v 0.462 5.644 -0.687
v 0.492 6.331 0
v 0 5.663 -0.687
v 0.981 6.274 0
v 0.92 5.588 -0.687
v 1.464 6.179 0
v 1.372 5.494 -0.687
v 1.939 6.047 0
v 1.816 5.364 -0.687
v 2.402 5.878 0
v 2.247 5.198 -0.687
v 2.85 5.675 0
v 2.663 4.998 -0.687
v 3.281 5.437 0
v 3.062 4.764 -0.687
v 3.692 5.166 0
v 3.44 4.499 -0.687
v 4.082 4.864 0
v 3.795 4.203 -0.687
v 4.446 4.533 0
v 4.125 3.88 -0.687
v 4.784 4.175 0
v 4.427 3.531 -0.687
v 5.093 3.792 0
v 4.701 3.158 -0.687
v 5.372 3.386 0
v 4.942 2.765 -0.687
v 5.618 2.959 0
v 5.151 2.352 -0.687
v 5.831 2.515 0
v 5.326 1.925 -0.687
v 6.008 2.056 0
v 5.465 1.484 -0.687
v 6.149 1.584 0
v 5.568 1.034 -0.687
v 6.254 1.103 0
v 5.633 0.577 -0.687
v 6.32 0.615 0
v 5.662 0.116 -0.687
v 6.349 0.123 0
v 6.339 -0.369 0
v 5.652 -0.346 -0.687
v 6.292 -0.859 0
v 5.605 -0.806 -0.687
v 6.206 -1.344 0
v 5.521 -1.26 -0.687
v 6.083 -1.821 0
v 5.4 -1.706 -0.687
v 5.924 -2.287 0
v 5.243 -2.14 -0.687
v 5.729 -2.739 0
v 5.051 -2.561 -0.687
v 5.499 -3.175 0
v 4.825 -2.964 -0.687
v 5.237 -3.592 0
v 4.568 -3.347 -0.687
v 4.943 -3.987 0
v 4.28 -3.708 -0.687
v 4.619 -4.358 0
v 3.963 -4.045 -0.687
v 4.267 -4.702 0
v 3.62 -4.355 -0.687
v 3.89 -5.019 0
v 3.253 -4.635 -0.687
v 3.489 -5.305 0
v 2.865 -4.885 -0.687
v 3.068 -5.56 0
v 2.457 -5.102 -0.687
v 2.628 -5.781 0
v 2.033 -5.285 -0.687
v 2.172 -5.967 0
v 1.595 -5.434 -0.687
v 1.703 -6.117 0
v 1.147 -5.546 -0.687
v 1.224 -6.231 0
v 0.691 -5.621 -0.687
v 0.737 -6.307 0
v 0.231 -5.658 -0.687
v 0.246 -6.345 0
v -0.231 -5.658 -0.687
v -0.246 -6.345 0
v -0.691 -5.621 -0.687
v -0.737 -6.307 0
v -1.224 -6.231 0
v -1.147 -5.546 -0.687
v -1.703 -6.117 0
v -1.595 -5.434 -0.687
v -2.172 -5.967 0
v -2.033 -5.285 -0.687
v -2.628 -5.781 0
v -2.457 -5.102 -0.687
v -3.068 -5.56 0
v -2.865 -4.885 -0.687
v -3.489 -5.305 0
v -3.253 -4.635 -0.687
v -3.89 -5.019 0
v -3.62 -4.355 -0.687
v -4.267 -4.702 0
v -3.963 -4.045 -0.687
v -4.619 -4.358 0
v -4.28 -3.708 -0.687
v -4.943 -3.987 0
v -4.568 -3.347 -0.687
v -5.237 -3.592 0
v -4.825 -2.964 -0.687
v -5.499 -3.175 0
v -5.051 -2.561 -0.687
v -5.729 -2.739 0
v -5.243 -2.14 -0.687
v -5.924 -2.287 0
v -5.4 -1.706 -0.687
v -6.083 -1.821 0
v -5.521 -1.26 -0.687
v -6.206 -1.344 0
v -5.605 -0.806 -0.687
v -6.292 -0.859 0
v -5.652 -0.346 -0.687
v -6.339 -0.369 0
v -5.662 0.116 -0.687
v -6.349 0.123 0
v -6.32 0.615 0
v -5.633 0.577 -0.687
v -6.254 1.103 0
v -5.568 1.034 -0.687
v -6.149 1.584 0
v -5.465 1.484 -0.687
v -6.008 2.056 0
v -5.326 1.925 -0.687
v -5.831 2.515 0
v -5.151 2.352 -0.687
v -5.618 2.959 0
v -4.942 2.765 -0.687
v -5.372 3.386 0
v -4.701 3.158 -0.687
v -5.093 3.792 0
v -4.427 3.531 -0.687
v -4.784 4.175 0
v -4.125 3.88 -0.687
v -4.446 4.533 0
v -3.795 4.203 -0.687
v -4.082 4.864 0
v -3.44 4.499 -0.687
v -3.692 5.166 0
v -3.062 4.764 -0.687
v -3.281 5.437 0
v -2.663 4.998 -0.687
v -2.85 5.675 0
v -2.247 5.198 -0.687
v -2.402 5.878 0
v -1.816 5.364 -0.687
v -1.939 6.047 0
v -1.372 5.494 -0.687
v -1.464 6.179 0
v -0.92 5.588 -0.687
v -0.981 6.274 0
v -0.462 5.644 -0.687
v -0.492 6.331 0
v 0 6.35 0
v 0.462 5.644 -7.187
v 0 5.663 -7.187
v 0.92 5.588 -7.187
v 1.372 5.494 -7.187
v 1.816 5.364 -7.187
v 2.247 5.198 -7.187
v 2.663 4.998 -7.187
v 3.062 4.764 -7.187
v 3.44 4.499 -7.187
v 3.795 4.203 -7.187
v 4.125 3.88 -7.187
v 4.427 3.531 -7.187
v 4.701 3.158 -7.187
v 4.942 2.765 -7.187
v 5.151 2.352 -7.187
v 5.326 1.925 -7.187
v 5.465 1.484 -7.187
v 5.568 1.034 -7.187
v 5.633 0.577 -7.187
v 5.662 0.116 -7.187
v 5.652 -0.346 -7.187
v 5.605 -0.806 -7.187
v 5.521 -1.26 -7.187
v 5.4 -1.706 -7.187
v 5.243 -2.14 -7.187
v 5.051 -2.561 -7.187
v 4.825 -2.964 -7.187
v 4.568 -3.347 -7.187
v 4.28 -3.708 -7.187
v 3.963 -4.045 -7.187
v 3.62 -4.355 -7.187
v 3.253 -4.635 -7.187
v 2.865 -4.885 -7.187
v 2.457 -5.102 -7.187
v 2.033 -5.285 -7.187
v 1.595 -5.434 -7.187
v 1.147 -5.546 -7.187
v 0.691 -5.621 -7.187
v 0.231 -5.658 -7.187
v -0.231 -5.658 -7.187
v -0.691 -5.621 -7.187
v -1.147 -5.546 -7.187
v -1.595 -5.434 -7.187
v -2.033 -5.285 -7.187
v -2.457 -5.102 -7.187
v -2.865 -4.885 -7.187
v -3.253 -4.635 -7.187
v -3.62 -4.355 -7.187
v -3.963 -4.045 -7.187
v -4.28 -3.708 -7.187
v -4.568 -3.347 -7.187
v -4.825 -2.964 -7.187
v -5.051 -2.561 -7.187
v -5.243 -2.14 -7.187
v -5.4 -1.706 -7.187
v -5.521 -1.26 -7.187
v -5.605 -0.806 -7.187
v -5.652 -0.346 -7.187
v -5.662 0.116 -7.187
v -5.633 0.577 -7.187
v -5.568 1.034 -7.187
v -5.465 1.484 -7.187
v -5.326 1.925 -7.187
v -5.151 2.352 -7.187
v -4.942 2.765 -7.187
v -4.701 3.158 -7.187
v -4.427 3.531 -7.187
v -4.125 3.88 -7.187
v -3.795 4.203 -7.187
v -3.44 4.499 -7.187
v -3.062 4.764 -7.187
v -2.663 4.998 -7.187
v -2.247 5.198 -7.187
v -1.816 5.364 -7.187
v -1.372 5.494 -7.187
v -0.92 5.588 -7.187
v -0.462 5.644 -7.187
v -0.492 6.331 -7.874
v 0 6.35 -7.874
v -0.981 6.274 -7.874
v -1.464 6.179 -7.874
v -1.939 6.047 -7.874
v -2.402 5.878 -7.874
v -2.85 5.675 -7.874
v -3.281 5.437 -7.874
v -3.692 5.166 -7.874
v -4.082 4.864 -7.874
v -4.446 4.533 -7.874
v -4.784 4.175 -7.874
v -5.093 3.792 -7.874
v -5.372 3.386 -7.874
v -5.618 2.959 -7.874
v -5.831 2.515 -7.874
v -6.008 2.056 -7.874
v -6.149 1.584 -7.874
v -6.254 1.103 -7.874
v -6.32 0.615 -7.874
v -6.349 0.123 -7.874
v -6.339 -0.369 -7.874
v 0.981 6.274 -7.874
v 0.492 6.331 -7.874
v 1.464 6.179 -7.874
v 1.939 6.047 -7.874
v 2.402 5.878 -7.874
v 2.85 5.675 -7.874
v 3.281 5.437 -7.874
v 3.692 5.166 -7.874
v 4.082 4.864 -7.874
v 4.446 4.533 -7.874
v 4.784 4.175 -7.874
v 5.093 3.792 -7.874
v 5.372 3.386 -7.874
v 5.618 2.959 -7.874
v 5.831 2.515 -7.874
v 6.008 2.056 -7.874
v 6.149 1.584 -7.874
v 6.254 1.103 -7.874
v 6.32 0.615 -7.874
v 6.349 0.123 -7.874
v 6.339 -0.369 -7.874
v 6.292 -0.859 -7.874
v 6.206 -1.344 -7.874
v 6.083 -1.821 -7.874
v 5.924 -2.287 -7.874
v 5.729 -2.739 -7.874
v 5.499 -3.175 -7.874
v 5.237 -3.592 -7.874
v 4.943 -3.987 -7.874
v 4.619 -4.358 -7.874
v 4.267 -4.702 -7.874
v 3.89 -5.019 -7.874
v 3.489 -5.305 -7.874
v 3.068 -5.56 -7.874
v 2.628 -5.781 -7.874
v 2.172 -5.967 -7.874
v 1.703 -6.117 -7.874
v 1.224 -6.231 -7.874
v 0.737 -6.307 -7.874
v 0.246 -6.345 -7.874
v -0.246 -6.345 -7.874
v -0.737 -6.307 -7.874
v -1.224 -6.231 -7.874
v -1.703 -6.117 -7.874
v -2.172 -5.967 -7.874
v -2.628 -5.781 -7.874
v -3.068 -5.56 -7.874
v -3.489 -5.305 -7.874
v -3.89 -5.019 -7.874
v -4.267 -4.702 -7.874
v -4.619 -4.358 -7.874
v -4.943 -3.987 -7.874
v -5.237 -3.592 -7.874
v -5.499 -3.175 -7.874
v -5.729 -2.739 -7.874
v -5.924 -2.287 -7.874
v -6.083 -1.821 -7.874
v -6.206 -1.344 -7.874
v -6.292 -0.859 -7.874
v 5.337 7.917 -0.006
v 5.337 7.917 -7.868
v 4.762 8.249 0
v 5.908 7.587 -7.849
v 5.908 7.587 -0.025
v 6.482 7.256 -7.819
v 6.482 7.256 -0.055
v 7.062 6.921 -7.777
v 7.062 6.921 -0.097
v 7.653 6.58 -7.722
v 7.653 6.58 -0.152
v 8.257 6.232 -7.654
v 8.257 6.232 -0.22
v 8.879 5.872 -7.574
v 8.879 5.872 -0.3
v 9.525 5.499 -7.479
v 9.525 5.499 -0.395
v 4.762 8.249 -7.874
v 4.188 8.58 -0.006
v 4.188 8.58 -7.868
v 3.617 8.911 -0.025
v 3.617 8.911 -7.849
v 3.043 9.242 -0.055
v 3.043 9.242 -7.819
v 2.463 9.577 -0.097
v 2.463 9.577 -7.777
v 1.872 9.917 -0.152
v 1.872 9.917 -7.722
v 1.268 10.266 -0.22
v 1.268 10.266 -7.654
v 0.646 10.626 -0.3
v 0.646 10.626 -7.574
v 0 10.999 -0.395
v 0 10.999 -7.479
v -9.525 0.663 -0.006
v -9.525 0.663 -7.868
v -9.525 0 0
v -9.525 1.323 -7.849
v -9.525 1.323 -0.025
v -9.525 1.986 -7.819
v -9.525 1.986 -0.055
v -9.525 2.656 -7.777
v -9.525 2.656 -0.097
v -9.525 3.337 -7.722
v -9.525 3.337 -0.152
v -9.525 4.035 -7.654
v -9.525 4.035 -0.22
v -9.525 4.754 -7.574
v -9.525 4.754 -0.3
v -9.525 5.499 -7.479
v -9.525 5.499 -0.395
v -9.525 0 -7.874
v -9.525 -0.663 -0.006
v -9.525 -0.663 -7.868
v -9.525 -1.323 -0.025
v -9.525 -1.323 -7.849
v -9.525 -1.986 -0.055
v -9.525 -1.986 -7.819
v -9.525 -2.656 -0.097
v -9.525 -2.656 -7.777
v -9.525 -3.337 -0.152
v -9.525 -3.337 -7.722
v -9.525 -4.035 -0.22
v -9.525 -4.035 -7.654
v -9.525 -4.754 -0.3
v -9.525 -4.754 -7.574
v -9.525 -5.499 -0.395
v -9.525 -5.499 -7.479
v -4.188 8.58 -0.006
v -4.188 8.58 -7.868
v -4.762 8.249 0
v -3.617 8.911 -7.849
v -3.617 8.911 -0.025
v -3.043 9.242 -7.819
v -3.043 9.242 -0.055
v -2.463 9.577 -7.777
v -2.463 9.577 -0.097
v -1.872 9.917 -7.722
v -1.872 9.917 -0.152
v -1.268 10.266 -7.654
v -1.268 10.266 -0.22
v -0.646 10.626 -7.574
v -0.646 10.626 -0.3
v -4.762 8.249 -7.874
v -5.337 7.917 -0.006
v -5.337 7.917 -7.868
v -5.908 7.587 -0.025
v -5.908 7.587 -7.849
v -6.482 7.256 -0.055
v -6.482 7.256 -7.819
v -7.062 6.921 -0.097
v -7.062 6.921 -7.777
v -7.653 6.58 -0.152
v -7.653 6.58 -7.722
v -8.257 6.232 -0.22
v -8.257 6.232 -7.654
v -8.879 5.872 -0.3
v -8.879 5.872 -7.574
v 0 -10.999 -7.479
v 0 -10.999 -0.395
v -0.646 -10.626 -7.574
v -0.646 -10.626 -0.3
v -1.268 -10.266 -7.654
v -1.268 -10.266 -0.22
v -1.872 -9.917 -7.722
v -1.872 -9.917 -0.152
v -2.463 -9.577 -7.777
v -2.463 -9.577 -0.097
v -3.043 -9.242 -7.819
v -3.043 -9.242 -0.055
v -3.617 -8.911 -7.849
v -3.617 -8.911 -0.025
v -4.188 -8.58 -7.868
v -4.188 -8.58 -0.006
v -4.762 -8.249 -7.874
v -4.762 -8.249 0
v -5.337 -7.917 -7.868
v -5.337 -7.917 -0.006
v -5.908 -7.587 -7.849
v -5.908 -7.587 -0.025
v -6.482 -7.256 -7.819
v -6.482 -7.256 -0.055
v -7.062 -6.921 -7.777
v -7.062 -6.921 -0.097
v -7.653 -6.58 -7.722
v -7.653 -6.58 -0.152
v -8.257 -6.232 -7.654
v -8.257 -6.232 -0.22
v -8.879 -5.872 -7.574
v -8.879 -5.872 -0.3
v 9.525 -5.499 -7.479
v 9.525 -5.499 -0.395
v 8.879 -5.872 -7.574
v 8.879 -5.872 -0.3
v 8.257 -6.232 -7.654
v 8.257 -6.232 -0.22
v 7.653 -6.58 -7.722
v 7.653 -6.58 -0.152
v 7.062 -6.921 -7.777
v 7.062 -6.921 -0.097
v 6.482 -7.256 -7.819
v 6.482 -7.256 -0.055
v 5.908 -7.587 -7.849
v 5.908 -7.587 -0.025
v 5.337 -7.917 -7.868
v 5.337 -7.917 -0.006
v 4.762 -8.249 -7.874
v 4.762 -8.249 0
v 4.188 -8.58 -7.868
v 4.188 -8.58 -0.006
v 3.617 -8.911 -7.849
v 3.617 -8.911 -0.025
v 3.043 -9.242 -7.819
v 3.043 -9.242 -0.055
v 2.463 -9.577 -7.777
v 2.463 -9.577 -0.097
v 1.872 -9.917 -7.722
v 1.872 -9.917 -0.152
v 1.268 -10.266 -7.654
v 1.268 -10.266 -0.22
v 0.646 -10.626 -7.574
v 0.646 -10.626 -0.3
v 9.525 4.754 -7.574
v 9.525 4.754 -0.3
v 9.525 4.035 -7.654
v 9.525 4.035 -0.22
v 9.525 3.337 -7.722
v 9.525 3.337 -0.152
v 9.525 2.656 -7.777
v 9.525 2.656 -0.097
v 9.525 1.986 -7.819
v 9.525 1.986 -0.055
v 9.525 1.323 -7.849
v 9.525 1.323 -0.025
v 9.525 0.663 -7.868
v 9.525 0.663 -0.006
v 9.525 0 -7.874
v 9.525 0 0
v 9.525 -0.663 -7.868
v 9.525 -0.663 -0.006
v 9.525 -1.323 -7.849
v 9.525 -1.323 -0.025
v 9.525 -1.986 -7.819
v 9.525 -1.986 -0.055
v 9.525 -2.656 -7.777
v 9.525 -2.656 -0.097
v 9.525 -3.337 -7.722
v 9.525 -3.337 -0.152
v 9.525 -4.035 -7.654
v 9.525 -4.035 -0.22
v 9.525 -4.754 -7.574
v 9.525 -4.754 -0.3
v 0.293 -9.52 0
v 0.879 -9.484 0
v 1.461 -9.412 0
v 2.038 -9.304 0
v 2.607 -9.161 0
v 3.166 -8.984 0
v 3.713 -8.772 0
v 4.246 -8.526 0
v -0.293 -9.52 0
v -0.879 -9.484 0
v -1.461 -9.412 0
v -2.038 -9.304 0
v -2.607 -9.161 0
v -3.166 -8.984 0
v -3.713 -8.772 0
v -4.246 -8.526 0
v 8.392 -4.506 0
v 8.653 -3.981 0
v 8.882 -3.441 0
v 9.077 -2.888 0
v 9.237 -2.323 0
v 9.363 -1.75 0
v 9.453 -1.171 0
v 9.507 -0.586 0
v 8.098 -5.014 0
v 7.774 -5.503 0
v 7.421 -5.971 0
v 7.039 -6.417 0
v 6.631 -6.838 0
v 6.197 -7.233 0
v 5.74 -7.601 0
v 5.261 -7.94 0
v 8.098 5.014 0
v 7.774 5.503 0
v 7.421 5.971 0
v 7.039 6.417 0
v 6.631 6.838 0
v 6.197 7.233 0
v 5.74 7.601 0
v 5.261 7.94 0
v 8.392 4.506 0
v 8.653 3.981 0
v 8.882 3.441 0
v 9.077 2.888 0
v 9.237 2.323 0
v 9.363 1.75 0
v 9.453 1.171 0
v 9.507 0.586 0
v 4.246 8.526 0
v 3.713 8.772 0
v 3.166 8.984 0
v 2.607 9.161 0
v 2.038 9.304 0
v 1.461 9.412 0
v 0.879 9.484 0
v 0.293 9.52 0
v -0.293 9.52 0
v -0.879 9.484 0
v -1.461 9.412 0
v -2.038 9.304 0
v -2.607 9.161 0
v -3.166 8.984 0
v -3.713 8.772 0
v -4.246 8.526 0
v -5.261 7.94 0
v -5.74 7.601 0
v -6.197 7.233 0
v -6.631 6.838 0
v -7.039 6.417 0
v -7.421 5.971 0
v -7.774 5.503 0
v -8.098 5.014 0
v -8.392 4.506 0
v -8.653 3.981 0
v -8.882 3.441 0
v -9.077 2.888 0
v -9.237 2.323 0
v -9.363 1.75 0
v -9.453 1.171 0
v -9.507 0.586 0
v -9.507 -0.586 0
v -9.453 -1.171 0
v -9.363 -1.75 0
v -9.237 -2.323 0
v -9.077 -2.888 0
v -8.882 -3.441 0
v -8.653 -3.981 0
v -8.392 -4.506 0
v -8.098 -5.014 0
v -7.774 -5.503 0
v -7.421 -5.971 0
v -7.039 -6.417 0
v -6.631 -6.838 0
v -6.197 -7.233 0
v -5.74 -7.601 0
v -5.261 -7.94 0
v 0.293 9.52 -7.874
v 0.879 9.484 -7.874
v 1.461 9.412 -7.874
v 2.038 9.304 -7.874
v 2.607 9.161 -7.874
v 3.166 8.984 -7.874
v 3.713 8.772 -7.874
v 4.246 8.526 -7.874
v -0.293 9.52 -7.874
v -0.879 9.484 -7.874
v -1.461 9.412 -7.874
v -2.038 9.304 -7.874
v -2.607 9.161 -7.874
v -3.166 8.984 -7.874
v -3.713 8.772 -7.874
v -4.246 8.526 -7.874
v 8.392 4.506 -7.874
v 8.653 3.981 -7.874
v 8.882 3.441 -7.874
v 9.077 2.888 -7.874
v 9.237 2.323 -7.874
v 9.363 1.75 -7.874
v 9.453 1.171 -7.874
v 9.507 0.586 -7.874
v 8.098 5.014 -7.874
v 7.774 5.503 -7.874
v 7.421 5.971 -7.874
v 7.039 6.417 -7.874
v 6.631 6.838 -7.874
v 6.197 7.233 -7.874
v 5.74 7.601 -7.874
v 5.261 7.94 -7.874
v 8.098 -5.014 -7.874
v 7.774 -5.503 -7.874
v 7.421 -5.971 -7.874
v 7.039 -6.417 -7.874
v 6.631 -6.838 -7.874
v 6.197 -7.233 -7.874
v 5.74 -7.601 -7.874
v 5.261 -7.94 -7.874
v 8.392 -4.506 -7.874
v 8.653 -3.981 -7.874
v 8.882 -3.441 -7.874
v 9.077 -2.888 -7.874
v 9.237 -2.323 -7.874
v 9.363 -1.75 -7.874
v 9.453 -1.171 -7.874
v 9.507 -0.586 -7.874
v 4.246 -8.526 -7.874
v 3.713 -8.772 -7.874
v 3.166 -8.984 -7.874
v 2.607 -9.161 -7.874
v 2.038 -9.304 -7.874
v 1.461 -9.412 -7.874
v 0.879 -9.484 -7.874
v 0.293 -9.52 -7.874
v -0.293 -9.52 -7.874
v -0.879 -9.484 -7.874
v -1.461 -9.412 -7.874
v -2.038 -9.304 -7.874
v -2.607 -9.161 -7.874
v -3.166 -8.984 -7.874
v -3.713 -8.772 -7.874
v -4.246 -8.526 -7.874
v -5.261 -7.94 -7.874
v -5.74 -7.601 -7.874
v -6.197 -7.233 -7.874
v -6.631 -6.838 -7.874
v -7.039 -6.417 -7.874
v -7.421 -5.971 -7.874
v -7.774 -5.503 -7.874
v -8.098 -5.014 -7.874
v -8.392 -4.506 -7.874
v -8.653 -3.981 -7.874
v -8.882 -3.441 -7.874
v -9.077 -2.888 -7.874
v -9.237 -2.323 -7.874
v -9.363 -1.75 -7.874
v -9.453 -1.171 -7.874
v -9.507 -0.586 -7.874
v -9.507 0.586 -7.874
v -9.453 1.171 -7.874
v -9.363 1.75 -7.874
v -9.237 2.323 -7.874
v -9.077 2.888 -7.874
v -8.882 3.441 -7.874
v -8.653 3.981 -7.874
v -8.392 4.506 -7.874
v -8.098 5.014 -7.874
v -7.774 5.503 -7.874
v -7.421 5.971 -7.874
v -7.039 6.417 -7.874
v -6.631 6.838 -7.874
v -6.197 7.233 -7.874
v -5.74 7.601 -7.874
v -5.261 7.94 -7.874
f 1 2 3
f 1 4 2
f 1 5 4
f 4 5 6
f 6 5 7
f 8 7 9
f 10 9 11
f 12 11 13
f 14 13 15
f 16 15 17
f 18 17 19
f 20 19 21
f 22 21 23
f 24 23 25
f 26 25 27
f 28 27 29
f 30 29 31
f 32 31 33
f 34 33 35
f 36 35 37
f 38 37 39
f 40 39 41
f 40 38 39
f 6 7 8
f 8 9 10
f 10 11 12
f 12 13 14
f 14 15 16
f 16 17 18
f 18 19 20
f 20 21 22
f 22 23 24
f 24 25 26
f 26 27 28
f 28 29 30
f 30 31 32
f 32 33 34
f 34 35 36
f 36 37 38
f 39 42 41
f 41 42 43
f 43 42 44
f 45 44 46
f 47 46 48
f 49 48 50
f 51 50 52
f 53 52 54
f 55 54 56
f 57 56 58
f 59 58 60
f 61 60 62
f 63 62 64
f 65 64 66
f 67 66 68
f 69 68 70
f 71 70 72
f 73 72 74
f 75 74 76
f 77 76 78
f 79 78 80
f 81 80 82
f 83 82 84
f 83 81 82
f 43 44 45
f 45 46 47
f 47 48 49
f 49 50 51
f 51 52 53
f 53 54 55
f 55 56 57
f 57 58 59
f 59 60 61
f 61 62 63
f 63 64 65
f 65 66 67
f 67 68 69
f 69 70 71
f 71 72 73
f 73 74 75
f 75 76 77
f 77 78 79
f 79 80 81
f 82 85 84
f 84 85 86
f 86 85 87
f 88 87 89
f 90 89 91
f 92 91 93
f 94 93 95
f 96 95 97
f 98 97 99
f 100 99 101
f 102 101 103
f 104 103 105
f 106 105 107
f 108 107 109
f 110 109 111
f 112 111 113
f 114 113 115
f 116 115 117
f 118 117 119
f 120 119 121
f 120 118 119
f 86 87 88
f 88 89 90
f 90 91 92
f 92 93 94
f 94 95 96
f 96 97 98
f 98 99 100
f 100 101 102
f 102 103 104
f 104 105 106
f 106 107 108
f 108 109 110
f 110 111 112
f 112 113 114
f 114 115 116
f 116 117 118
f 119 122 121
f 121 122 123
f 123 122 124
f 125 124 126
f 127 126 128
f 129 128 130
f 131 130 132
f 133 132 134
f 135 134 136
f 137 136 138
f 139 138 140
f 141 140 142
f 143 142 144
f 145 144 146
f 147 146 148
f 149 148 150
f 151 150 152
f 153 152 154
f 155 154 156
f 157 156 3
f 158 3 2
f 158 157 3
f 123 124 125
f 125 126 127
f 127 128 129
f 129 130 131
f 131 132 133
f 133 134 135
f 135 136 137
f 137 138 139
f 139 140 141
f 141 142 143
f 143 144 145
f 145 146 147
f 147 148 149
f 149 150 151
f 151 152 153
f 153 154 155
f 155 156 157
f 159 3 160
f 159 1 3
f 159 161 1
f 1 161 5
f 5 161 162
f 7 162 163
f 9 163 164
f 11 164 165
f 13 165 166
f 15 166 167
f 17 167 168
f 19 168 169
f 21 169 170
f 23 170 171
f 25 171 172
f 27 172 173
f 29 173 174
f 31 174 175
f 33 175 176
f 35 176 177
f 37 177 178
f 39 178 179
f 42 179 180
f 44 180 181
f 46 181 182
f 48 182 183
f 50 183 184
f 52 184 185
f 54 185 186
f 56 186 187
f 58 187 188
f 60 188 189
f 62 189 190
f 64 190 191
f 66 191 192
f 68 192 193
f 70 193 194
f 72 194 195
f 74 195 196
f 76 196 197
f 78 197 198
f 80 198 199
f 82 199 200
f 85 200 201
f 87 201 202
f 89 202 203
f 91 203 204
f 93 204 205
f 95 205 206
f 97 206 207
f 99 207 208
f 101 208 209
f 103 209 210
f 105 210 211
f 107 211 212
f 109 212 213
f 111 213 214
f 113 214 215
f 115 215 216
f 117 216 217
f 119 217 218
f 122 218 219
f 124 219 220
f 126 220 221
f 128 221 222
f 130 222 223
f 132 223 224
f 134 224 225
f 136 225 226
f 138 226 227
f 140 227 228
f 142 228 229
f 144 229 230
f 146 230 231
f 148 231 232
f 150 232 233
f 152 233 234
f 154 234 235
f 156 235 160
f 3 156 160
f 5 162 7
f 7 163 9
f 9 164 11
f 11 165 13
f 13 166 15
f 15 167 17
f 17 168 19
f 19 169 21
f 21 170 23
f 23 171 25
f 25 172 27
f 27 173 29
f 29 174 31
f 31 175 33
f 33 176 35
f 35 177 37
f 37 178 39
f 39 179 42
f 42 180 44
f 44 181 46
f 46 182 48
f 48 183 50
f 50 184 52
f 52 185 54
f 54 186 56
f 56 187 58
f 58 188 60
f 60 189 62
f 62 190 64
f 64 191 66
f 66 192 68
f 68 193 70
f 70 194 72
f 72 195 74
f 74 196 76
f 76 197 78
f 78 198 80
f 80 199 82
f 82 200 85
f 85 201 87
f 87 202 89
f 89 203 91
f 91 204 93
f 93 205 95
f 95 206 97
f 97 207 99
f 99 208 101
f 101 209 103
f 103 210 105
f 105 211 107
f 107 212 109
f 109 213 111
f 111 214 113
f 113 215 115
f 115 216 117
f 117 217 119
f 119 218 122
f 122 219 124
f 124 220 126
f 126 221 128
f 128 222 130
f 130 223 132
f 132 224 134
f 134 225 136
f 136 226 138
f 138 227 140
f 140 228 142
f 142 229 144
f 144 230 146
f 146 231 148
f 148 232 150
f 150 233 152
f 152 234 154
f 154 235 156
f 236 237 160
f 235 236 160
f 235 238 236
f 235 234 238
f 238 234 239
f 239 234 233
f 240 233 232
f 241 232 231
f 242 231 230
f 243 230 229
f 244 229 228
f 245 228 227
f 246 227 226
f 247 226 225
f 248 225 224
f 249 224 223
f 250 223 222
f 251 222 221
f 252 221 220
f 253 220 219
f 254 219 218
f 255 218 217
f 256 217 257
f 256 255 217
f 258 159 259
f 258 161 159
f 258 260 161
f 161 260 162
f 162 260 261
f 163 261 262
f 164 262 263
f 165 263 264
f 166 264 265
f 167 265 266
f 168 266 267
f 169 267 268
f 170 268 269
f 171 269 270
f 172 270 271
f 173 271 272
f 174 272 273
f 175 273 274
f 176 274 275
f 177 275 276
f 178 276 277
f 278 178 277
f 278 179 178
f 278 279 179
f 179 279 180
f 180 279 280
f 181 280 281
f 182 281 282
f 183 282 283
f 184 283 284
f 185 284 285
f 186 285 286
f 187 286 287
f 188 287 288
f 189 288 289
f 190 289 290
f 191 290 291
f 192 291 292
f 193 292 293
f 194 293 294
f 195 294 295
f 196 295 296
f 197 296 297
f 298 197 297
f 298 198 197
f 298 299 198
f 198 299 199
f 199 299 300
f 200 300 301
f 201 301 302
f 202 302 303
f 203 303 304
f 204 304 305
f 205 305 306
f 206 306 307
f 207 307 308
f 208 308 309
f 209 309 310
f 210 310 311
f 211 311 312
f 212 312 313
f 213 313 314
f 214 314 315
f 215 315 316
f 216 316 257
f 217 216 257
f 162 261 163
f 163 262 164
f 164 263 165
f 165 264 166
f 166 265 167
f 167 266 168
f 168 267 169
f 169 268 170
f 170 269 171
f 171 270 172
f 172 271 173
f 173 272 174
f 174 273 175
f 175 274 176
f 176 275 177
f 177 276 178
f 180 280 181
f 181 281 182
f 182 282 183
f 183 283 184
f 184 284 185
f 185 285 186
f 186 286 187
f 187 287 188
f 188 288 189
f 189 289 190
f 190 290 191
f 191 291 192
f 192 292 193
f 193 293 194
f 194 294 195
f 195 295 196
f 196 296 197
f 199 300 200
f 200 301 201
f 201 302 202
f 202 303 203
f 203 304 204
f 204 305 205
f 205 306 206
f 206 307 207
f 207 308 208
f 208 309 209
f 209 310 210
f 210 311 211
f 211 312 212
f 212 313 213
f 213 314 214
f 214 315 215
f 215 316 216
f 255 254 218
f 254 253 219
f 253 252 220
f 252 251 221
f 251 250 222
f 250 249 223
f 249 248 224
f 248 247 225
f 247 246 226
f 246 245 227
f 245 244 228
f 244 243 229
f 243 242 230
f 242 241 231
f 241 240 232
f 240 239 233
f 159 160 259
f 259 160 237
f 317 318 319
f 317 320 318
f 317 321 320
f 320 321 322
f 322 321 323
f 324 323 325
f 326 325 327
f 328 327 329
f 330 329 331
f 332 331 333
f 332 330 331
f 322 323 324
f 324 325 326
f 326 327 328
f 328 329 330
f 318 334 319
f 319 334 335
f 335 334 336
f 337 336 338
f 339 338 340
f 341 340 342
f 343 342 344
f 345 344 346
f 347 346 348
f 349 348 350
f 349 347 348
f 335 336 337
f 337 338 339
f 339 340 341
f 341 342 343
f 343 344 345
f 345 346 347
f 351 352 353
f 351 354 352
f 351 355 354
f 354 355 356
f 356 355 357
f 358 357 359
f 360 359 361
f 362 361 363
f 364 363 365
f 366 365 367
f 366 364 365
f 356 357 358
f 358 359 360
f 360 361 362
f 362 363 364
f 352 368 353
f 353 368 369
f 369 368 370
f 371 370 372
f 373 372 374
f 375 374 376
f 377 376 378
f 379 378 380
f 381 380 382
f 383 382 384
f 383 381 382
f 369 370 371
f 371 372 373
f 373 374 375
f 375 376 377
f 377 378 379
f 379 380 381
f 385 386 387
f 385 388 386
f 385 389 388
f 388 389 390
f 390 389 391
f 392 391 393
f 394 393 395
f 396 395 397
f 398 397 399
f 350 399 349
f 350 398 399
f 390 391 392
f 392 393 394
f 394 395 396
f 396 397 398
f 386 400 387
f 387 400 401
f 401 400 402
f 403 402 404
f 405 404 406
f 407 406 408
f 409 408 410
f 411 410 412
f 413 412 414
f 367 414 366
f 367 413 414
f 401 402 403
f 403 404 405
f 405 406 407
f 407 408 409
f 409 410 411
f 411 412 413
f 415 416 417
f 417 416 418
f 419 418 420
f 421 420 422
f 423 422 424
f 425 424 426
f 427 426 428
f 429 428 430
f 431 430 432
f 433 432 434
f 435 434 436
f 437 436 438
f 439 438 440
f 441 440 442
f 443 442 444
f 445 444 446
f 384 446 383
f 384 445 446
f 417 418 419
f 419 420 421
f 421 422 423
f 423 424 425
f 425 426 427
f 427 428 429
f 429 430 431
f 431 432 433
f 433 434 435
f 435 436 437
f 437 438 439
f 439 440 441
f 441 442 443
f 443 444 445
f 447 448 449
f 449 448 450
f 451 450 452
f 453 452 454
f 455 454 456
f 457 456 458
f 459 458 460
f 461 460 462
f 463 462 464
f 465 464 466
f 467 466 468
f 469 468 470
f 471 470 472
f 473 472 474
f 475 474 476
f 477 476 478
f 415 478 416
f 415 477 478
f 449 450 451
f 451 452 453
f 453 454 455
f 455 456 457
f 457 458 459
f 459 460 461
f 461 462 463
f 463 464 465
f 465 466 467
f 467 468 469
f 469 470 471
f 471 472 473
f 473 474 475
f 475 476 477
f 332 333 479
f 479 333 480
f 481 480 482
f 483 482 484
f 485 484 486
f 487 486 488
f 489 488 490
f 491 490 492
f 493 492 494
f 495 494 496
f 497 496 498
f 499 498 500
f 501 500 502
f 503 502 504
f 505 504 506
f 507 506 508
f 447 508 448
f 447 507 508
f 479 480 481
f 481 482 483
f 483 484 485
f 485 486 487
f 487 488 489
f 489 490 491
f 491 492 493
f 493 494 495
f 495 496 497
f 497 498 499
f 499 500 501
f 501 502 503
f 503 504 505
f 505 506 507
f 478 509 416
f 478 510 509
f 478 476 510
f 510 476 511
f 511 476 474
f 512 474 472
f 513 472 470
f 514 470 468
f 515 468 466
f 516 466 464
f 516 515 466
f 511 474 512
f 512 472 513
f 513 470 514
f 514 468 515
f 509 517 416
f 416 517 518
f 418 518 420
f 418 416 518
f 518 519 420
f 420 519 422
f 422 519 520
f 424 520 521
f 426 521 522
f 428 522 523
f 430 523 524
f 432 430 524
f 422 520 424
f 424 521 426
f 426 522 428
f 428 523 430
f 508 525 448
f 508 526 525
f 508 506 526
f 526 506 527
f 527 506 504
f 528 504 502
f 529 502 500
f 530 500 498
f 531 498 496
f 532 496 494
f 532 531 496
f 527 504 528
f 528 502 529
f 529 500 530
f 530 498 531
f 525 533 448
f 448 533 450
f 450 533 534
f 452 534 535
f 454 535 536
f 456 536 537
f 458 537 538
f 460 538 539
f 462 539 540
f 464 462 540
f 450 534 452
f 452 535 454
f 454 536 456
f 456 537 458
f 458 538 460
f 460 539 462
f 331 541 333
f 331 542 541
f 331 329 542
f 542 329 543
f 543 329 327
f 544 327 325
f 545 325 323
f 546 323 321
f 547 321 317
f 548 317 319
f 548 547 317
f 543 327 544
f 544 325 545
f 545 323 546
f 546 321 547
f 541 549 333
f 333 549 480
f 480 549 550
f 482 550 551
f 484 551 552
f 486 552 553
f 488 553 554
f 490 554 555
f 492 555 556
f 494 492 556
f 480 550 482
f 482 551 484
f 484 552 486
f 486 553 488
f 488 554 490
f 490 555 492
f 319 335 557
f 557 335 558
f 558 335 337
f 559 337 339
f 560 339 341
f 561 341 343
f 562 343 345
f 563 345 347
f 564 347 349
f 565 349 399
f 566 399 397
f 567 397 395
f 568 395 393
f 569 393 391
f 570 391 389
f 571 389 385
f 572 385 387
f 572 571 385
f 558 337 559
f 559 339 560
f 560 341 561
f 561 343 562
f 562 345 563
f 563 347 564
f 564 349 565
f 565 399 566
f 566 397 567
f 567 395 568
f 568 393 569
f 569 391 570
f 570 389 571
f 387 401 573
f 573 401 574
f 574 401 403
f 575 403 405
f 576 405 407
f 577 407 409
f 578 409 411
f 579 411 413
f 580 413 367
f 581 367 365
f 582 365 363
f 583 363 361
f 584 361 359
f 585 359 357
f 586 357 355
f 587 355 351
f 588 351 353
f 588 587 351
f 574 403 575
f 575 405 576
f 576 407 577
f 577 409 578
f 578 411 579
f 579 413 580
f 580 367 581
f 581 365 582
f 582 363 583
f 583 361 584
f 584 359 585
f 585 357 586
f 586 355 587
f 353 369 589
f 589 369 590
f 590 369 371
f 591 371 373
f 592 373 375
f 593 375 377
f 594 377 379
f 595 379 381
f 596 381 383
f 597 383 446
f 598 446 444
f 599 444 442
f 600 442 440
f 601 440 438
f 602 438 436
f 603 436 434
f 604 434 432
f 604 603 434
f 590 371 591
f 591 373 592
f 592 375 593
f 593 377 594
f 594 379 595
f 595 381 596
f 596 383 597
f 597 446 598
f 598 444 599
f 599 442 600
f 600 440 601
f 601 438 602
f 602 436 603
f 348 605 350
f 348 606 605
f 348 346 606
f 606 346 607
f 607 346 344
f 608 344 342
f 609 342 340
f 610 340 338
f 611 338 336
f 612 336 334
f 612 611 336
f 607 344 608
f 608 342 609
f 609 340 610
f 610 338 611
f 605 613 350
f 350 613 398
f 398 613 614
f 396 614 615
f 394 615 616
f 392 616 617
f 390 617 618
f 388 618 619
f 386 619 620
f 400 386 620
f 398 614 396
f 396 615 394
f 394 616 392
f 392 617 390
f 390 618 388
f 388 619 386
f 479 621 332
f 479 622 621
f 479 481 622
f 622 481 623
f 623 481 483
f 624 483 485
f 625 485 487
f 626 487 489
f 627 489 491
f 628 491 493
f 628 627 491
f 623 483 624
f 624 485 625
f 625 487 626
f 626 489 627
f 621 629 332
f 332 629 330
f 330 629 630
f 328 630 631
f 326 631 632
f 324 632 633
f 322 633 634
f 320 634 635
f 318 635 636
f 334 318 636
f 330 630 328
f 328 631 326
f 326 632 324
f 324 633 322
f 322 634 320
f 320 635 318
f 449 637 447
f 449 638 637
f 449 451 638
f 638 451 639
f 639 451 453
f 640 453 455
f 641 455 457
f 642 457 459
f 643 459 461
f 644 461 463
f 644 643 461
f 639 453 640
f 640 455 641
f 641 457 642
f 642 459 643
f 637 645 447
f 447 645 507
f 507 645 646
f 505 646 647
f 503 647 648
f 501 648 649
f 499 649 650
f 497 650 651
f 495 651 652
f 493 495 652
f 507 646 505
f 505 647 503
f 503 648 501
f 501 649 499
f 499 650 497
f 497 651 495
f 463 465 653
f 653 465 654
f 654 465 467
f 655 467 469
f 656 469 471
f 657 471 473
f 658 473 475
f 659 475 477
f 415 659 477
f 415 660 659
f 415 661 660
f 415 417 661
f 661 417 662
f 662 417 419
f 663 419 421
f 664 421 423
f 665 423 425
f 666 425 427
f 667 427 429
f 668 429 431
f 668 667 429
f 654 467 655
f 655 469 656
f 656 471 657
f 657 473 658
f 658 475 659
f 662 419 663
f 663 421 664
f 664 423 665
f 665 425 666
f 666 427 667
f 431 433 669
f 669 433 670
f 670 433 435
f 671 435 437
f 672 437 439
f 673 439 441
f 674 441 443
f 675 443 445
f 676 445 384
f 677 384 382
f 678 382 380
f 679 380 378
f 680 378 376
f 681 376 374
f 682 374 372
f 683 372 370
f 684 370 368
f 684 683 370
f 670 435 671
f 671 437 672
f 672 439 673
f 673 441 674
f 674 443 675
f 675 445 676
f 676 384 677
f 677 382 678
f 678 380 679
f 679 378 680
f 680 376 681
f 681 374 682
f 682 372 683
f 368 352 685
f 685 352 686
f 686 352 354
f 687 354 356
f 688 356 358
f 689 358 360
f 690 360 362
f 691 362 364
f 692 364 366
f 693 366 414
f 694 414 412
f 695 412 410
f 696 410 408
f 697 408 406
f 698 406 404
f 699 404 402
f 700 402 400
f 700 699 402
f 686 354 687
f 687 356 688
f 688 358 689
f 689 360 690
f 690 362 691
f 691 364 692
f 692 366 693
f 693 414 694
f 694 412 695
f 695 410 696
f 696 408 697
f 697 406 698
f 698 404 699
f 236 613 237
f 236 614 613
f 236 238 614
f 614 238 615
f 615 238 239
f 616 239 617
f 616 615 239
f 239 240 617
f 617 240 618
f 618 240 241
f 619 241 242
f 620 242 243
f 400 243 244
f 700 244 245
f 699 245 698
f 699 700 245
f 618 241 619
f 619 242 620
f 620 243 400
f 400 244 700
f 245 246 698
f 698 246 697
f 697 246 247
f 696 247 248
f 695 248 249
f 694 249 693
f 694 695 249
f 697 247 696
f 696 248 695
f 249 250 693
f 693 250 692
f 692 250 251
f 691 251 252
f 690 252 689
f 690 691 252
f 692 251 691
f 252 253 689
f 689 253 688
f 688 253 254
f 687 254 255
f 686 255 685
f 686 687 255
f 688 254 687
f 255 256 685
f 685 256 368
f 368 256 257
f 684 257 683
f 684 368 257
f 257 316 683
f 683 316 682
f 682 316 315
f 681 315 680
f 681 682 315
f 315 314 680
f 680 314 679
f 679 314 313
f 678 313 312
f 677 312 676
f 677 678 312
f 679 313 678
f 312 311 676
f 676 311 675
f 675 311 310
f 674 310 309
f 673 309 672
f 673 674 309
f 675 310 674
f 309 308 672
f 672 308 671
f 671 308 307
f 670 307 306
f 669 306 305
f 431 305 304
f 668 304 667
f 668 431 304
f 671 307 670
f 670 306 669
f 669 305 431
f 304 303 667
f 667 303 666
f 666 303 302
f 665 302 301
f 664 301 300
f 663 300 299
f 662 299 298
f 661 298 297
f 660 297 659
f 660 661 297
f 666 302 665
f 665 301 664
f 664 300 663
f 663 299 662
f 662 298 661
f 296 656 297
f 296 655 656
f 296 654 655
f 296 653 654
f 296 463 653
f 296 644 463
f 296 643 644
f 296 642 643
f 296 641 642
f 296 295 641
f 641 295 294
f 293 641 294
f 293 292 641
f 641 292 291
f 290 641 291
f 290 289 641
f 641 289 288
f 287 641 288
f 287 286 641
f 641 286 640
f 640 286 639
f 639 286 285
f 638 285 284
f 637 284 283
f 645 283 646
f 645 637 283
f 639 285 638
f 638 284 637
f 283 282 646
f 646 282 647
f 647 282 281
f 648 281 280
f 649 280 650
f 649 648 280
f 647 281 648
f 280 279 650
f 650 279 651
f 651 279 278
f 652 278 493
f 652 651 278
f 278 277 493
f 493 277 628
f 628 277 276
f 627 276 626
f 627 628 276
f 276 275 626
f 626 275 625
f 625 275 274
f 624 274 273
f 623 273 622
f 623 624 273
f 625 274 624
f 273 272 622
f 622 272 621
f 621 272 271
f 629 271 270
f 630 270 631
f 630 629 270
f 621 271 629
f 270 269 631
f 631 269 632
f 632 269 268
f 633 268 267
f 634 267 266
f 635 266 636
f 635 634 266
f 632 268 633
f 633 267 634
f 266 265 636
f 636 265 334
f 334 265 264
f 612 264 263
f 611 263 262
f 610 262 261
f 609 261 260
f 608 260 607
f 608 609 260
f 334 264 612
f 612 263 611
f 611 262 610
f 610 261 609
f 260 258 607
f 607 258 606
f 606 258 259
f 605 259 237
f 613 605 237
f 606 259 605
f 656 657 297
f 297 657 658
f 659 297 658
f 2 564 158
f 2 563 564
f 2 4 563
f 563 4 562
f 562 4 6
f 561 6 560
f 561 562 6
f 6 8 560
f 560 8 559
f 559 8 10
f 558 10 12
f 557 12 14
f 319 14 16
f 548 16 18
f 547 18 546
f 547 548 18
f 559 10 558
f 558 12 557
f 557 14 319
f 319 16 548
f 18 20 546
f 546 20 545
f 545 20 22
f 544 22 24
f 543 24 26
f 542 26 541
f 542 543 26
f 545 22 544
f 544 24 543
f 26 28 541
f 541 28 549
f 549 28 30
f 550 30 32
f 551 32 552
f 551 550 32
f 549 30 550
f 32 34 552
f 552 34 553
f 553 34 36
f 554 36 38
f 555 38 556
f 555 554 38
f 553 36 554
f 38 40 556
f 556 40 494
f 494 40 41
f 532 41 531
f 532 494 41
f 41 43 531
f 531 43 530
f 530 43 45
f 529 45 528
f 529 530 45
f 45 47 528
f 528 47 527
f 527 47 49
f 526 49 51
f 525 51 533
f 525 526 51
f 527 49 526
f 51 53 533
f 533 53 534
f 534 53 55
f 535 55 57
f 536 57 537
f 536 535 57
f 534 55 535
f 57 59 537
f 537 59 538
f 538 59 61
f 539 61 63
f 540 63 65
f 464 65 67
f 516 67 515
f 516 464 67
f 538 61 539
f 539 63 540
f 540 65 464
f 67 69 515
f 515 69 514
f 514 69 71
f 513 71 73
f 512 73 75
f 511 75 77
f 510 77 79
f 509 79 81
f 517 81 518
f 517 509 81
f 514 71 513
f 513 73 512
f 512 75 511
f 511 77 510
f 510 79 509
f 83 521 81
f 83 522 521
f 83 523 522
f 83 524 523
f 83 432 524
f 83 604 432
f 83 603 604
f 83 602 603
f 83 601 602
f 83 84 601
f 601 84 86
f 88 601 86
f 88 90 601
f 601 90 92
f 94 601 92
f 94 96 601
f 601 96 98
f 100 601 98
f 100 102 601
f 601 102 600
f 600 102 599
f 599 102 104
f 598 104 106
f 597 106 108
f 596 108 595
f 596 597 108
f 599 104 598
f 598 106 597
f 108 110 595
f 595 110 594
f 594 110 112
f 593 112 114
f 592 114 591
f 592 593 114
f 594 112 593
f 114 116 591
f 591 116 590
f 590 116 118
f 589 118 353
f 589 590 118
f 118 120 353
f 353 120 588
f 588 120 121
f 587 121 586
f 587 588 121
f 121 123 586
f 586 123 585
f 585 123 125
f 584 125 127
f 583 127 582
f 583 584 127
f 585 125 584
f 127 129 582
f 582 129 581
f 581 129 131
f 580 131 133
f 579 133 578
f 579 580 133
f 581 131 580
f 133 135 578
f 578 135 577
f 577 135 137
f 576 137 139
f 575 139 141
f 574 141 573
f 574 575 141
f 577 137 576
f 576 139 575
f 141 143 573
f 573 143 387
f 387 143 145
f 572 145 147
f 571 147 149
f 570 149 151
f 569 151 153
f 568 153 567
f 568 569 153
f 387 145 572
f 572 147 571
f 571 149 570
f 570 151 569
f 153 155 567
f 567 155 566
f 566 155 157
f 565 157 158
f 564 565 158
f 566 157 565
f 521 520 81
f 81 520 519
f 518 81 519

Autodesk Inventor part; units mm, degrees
sketch "Sketch_8" plane through (0, 0, 0) normal (1, 0, 0) x (0, 1, 0)
  line L0 (0, -7.874) -> (0, 0)
  line L1 (0, 0) -> (9.525, 0)
  line L2 (9.525, 0) -> (11.43, -0.5104)
  line L3 (11.43, -0.5104) -> (11.43, -7.3636)
  line L4 (11.43, -7.3636) -> (9.525, -7.874)
  line L5 (9.525, -7.874) -> (0, -7.874)
  line L6 (0, -7.874) -> (0, 0)
sketch "Sketch_10" plane through (0, 0, 0) normal (0, 0, 1) x (1, 0, 0)
  line L0 (-19.05, 19.05) -> (-19.05, -19.05)
  line L1 (-19.05, -19.05) -> (19.05, -19.05)
  line L2 (19.05, -19.05) -> (19.05, 19.05)
  line L3 (19.05, 19.05) -> (-19.05, 19.05)
  line L4 (-9.525, 5.4993) -> (-9.525, -5.4993)
  line L5 (-9.525, -5.4993) -> (0, -10.9985)
  line L6 (0, -10.9985) -> (9.525, -5.4993)
  line L7 (9.525, -5.4993) -> (9.525, 5.4993)
  line L8 (9.525, 5.4993) -> (0, 10.9985)
  line L9 (0, 10.9985) -> (-9.525, 5.4993)
revolve "Revolution1" add sketch "Sketch_8" angle 360 about axis through (0, 0, -7.874) along (0, 0, -1)
extrude "Extrusion1" cut sketch "Sketch_10" against normal blind 7.874
sketch "Sketch_11" plane through (0, 0, 0) normal (1, 0, 0) x (0, 1, 0)
  line L0 (0, -7.874) -> (0, 0)
  line L1 (0, 0) -> (6.35, 0)
  line L2 (6.35, 0) -> (5.6629, -0.6871)
  line L3 (5.6629, -0.6871) -> (5.6629, -7.1869)
  line L4 (5.6629, -7.1869) -> (6.35, -7.874)
  line L5 (6.35, -7.874) -> (0, -7.874)
  line L6 (0, -7.874) -> (0, 0)
revolve "Revolution2" cut sketch "Sketch_11" angle 360 about axis through (0, 0, -7.874) along (0, 0, -1)
thread "Thread1" size "1/2-20 UNF" class "2B" standard "ANSI Unified Screw Threads" full length
ref_plane "NUT_XY" through (0, 0, 0) normal (0, 0, 1) x (1, 0, 0)
ref_plane "NUT_YZ" through (0, 0, 0) normal (1, 0, 0) x (0, 1, 0)
ref_plane "NUT_ZX" through (0, 0, 0) normal (0, 1, 0) x (0, 0, 1)
ref_plane "a1_XY" through (-9.525, 9.525, 0) normal (0, 0, 1) x (1, 0, 0)
ref_plane "a1_YZ" through (-9.525, 9.525, 0) normal (1, 0, 0) x (0, 1, 0)
ref_plane "a1_ZX" through (-9.525, 9.525, 0) normal (0, 1, 0) x (0, 0, 1)
ref_plane "a2_XY" through (9.525, 9.525, 0) normal (0, 0, 1) x (1, 0, 0)
ref_plane "a2_YZ" through (9.525, 9.525, 0) normal (1, 0, 0) x (0, 1, 0)
ref_plane "a2_ZX" through (9.525, 9.525, 0) normal (0, 1, 0) x (0, 0, 1)
ref_plane "b1_XY" through (0, 9.525, 0) normal (1, 0, 0) x (0, 0, -1)
ref_plane "b1_YZ" through (0, 9.525, 0) normal (0, 0, -1) x (0, 1, 0)
ref_plane "b1_ZX" through (0, 9.525, 0) normal (0, 1, 0) x (1, 0, 0)
ref_plane "b2_XY" through (0, 9.525, -7.874) normal (1, 0, 0) x (0, 0, -1)
ref_plane "b2_YZ" through (0, 9.525, -7.874) normal (0, 0, -1) x (0, 1, 0)
ref_plane "b2_ZX" through (0, 9.525, -7.874) normal (0, 1, 0) x (1, 0, 0)
ref_plane "e_XY" through (0, 0, -7.874) normal (1, 0, 0) x (0, 0, -1)
ref_plane "e_YZ" through (0, 0, -7.874) normal (0, 0, -1) x (0, 1, 0)
ref_plane "e_ZX" through (0, 0, -7.874) normal (0, 1, 0) x (1, 0, 0)
ref_plane "th1_XY" through (0, 6.35, -7.874) normal (1, 0, 0) x (0, 0, -1)
ref_plane "th1_YZ" through (0, 6.35, -7.874) normal (0, 0, -1) x (0, 1, 0)
ref_plane "th1_ZX" through (0, 6.35, -7.874) normal (0, 1, 0) x (1, 0, 0)
ref_plane "th2_XY" through (0, -6.35, -7.874) normal (1, 0, 0) x (0, 0, -1)
ref_plane "th2_YZ" through (0, -6.35, -7.874) normal (0, 0, -1) x (0, 1, 0)
ref_plane "th2_ZX" through (0, -6.35, -7.874) normal (0, 1, 0) x (1, 0, 0)
ref_plane "ol1_XY" through (0, 0, -9.525) normal (0, 1, 0) x (1, 0, 0)
ref_plane "ol1_YZ" through (0, 0, -9.525) normal (1, 0, 0) x (0, 0, -1)
ref_plane "ol1_ZX" through (0, 0, -9.525) normal (0, 0, -1) x (0, 1, 0)
ref_plane "ol2_XY" through (7.874, 0, -9.525) normal (0, 1, 0) x (1, 0, 0)
ref_plane "ol2_YZ" through (7.874, 0, -9.525) normal (1, 0, 0) x (0, 0, -1)
ref_plane "ol2_ZX" through (7.874, 0, -9.525) normal (0, 0, -1) x (0, 1, 0)
properties part number "D-98"
